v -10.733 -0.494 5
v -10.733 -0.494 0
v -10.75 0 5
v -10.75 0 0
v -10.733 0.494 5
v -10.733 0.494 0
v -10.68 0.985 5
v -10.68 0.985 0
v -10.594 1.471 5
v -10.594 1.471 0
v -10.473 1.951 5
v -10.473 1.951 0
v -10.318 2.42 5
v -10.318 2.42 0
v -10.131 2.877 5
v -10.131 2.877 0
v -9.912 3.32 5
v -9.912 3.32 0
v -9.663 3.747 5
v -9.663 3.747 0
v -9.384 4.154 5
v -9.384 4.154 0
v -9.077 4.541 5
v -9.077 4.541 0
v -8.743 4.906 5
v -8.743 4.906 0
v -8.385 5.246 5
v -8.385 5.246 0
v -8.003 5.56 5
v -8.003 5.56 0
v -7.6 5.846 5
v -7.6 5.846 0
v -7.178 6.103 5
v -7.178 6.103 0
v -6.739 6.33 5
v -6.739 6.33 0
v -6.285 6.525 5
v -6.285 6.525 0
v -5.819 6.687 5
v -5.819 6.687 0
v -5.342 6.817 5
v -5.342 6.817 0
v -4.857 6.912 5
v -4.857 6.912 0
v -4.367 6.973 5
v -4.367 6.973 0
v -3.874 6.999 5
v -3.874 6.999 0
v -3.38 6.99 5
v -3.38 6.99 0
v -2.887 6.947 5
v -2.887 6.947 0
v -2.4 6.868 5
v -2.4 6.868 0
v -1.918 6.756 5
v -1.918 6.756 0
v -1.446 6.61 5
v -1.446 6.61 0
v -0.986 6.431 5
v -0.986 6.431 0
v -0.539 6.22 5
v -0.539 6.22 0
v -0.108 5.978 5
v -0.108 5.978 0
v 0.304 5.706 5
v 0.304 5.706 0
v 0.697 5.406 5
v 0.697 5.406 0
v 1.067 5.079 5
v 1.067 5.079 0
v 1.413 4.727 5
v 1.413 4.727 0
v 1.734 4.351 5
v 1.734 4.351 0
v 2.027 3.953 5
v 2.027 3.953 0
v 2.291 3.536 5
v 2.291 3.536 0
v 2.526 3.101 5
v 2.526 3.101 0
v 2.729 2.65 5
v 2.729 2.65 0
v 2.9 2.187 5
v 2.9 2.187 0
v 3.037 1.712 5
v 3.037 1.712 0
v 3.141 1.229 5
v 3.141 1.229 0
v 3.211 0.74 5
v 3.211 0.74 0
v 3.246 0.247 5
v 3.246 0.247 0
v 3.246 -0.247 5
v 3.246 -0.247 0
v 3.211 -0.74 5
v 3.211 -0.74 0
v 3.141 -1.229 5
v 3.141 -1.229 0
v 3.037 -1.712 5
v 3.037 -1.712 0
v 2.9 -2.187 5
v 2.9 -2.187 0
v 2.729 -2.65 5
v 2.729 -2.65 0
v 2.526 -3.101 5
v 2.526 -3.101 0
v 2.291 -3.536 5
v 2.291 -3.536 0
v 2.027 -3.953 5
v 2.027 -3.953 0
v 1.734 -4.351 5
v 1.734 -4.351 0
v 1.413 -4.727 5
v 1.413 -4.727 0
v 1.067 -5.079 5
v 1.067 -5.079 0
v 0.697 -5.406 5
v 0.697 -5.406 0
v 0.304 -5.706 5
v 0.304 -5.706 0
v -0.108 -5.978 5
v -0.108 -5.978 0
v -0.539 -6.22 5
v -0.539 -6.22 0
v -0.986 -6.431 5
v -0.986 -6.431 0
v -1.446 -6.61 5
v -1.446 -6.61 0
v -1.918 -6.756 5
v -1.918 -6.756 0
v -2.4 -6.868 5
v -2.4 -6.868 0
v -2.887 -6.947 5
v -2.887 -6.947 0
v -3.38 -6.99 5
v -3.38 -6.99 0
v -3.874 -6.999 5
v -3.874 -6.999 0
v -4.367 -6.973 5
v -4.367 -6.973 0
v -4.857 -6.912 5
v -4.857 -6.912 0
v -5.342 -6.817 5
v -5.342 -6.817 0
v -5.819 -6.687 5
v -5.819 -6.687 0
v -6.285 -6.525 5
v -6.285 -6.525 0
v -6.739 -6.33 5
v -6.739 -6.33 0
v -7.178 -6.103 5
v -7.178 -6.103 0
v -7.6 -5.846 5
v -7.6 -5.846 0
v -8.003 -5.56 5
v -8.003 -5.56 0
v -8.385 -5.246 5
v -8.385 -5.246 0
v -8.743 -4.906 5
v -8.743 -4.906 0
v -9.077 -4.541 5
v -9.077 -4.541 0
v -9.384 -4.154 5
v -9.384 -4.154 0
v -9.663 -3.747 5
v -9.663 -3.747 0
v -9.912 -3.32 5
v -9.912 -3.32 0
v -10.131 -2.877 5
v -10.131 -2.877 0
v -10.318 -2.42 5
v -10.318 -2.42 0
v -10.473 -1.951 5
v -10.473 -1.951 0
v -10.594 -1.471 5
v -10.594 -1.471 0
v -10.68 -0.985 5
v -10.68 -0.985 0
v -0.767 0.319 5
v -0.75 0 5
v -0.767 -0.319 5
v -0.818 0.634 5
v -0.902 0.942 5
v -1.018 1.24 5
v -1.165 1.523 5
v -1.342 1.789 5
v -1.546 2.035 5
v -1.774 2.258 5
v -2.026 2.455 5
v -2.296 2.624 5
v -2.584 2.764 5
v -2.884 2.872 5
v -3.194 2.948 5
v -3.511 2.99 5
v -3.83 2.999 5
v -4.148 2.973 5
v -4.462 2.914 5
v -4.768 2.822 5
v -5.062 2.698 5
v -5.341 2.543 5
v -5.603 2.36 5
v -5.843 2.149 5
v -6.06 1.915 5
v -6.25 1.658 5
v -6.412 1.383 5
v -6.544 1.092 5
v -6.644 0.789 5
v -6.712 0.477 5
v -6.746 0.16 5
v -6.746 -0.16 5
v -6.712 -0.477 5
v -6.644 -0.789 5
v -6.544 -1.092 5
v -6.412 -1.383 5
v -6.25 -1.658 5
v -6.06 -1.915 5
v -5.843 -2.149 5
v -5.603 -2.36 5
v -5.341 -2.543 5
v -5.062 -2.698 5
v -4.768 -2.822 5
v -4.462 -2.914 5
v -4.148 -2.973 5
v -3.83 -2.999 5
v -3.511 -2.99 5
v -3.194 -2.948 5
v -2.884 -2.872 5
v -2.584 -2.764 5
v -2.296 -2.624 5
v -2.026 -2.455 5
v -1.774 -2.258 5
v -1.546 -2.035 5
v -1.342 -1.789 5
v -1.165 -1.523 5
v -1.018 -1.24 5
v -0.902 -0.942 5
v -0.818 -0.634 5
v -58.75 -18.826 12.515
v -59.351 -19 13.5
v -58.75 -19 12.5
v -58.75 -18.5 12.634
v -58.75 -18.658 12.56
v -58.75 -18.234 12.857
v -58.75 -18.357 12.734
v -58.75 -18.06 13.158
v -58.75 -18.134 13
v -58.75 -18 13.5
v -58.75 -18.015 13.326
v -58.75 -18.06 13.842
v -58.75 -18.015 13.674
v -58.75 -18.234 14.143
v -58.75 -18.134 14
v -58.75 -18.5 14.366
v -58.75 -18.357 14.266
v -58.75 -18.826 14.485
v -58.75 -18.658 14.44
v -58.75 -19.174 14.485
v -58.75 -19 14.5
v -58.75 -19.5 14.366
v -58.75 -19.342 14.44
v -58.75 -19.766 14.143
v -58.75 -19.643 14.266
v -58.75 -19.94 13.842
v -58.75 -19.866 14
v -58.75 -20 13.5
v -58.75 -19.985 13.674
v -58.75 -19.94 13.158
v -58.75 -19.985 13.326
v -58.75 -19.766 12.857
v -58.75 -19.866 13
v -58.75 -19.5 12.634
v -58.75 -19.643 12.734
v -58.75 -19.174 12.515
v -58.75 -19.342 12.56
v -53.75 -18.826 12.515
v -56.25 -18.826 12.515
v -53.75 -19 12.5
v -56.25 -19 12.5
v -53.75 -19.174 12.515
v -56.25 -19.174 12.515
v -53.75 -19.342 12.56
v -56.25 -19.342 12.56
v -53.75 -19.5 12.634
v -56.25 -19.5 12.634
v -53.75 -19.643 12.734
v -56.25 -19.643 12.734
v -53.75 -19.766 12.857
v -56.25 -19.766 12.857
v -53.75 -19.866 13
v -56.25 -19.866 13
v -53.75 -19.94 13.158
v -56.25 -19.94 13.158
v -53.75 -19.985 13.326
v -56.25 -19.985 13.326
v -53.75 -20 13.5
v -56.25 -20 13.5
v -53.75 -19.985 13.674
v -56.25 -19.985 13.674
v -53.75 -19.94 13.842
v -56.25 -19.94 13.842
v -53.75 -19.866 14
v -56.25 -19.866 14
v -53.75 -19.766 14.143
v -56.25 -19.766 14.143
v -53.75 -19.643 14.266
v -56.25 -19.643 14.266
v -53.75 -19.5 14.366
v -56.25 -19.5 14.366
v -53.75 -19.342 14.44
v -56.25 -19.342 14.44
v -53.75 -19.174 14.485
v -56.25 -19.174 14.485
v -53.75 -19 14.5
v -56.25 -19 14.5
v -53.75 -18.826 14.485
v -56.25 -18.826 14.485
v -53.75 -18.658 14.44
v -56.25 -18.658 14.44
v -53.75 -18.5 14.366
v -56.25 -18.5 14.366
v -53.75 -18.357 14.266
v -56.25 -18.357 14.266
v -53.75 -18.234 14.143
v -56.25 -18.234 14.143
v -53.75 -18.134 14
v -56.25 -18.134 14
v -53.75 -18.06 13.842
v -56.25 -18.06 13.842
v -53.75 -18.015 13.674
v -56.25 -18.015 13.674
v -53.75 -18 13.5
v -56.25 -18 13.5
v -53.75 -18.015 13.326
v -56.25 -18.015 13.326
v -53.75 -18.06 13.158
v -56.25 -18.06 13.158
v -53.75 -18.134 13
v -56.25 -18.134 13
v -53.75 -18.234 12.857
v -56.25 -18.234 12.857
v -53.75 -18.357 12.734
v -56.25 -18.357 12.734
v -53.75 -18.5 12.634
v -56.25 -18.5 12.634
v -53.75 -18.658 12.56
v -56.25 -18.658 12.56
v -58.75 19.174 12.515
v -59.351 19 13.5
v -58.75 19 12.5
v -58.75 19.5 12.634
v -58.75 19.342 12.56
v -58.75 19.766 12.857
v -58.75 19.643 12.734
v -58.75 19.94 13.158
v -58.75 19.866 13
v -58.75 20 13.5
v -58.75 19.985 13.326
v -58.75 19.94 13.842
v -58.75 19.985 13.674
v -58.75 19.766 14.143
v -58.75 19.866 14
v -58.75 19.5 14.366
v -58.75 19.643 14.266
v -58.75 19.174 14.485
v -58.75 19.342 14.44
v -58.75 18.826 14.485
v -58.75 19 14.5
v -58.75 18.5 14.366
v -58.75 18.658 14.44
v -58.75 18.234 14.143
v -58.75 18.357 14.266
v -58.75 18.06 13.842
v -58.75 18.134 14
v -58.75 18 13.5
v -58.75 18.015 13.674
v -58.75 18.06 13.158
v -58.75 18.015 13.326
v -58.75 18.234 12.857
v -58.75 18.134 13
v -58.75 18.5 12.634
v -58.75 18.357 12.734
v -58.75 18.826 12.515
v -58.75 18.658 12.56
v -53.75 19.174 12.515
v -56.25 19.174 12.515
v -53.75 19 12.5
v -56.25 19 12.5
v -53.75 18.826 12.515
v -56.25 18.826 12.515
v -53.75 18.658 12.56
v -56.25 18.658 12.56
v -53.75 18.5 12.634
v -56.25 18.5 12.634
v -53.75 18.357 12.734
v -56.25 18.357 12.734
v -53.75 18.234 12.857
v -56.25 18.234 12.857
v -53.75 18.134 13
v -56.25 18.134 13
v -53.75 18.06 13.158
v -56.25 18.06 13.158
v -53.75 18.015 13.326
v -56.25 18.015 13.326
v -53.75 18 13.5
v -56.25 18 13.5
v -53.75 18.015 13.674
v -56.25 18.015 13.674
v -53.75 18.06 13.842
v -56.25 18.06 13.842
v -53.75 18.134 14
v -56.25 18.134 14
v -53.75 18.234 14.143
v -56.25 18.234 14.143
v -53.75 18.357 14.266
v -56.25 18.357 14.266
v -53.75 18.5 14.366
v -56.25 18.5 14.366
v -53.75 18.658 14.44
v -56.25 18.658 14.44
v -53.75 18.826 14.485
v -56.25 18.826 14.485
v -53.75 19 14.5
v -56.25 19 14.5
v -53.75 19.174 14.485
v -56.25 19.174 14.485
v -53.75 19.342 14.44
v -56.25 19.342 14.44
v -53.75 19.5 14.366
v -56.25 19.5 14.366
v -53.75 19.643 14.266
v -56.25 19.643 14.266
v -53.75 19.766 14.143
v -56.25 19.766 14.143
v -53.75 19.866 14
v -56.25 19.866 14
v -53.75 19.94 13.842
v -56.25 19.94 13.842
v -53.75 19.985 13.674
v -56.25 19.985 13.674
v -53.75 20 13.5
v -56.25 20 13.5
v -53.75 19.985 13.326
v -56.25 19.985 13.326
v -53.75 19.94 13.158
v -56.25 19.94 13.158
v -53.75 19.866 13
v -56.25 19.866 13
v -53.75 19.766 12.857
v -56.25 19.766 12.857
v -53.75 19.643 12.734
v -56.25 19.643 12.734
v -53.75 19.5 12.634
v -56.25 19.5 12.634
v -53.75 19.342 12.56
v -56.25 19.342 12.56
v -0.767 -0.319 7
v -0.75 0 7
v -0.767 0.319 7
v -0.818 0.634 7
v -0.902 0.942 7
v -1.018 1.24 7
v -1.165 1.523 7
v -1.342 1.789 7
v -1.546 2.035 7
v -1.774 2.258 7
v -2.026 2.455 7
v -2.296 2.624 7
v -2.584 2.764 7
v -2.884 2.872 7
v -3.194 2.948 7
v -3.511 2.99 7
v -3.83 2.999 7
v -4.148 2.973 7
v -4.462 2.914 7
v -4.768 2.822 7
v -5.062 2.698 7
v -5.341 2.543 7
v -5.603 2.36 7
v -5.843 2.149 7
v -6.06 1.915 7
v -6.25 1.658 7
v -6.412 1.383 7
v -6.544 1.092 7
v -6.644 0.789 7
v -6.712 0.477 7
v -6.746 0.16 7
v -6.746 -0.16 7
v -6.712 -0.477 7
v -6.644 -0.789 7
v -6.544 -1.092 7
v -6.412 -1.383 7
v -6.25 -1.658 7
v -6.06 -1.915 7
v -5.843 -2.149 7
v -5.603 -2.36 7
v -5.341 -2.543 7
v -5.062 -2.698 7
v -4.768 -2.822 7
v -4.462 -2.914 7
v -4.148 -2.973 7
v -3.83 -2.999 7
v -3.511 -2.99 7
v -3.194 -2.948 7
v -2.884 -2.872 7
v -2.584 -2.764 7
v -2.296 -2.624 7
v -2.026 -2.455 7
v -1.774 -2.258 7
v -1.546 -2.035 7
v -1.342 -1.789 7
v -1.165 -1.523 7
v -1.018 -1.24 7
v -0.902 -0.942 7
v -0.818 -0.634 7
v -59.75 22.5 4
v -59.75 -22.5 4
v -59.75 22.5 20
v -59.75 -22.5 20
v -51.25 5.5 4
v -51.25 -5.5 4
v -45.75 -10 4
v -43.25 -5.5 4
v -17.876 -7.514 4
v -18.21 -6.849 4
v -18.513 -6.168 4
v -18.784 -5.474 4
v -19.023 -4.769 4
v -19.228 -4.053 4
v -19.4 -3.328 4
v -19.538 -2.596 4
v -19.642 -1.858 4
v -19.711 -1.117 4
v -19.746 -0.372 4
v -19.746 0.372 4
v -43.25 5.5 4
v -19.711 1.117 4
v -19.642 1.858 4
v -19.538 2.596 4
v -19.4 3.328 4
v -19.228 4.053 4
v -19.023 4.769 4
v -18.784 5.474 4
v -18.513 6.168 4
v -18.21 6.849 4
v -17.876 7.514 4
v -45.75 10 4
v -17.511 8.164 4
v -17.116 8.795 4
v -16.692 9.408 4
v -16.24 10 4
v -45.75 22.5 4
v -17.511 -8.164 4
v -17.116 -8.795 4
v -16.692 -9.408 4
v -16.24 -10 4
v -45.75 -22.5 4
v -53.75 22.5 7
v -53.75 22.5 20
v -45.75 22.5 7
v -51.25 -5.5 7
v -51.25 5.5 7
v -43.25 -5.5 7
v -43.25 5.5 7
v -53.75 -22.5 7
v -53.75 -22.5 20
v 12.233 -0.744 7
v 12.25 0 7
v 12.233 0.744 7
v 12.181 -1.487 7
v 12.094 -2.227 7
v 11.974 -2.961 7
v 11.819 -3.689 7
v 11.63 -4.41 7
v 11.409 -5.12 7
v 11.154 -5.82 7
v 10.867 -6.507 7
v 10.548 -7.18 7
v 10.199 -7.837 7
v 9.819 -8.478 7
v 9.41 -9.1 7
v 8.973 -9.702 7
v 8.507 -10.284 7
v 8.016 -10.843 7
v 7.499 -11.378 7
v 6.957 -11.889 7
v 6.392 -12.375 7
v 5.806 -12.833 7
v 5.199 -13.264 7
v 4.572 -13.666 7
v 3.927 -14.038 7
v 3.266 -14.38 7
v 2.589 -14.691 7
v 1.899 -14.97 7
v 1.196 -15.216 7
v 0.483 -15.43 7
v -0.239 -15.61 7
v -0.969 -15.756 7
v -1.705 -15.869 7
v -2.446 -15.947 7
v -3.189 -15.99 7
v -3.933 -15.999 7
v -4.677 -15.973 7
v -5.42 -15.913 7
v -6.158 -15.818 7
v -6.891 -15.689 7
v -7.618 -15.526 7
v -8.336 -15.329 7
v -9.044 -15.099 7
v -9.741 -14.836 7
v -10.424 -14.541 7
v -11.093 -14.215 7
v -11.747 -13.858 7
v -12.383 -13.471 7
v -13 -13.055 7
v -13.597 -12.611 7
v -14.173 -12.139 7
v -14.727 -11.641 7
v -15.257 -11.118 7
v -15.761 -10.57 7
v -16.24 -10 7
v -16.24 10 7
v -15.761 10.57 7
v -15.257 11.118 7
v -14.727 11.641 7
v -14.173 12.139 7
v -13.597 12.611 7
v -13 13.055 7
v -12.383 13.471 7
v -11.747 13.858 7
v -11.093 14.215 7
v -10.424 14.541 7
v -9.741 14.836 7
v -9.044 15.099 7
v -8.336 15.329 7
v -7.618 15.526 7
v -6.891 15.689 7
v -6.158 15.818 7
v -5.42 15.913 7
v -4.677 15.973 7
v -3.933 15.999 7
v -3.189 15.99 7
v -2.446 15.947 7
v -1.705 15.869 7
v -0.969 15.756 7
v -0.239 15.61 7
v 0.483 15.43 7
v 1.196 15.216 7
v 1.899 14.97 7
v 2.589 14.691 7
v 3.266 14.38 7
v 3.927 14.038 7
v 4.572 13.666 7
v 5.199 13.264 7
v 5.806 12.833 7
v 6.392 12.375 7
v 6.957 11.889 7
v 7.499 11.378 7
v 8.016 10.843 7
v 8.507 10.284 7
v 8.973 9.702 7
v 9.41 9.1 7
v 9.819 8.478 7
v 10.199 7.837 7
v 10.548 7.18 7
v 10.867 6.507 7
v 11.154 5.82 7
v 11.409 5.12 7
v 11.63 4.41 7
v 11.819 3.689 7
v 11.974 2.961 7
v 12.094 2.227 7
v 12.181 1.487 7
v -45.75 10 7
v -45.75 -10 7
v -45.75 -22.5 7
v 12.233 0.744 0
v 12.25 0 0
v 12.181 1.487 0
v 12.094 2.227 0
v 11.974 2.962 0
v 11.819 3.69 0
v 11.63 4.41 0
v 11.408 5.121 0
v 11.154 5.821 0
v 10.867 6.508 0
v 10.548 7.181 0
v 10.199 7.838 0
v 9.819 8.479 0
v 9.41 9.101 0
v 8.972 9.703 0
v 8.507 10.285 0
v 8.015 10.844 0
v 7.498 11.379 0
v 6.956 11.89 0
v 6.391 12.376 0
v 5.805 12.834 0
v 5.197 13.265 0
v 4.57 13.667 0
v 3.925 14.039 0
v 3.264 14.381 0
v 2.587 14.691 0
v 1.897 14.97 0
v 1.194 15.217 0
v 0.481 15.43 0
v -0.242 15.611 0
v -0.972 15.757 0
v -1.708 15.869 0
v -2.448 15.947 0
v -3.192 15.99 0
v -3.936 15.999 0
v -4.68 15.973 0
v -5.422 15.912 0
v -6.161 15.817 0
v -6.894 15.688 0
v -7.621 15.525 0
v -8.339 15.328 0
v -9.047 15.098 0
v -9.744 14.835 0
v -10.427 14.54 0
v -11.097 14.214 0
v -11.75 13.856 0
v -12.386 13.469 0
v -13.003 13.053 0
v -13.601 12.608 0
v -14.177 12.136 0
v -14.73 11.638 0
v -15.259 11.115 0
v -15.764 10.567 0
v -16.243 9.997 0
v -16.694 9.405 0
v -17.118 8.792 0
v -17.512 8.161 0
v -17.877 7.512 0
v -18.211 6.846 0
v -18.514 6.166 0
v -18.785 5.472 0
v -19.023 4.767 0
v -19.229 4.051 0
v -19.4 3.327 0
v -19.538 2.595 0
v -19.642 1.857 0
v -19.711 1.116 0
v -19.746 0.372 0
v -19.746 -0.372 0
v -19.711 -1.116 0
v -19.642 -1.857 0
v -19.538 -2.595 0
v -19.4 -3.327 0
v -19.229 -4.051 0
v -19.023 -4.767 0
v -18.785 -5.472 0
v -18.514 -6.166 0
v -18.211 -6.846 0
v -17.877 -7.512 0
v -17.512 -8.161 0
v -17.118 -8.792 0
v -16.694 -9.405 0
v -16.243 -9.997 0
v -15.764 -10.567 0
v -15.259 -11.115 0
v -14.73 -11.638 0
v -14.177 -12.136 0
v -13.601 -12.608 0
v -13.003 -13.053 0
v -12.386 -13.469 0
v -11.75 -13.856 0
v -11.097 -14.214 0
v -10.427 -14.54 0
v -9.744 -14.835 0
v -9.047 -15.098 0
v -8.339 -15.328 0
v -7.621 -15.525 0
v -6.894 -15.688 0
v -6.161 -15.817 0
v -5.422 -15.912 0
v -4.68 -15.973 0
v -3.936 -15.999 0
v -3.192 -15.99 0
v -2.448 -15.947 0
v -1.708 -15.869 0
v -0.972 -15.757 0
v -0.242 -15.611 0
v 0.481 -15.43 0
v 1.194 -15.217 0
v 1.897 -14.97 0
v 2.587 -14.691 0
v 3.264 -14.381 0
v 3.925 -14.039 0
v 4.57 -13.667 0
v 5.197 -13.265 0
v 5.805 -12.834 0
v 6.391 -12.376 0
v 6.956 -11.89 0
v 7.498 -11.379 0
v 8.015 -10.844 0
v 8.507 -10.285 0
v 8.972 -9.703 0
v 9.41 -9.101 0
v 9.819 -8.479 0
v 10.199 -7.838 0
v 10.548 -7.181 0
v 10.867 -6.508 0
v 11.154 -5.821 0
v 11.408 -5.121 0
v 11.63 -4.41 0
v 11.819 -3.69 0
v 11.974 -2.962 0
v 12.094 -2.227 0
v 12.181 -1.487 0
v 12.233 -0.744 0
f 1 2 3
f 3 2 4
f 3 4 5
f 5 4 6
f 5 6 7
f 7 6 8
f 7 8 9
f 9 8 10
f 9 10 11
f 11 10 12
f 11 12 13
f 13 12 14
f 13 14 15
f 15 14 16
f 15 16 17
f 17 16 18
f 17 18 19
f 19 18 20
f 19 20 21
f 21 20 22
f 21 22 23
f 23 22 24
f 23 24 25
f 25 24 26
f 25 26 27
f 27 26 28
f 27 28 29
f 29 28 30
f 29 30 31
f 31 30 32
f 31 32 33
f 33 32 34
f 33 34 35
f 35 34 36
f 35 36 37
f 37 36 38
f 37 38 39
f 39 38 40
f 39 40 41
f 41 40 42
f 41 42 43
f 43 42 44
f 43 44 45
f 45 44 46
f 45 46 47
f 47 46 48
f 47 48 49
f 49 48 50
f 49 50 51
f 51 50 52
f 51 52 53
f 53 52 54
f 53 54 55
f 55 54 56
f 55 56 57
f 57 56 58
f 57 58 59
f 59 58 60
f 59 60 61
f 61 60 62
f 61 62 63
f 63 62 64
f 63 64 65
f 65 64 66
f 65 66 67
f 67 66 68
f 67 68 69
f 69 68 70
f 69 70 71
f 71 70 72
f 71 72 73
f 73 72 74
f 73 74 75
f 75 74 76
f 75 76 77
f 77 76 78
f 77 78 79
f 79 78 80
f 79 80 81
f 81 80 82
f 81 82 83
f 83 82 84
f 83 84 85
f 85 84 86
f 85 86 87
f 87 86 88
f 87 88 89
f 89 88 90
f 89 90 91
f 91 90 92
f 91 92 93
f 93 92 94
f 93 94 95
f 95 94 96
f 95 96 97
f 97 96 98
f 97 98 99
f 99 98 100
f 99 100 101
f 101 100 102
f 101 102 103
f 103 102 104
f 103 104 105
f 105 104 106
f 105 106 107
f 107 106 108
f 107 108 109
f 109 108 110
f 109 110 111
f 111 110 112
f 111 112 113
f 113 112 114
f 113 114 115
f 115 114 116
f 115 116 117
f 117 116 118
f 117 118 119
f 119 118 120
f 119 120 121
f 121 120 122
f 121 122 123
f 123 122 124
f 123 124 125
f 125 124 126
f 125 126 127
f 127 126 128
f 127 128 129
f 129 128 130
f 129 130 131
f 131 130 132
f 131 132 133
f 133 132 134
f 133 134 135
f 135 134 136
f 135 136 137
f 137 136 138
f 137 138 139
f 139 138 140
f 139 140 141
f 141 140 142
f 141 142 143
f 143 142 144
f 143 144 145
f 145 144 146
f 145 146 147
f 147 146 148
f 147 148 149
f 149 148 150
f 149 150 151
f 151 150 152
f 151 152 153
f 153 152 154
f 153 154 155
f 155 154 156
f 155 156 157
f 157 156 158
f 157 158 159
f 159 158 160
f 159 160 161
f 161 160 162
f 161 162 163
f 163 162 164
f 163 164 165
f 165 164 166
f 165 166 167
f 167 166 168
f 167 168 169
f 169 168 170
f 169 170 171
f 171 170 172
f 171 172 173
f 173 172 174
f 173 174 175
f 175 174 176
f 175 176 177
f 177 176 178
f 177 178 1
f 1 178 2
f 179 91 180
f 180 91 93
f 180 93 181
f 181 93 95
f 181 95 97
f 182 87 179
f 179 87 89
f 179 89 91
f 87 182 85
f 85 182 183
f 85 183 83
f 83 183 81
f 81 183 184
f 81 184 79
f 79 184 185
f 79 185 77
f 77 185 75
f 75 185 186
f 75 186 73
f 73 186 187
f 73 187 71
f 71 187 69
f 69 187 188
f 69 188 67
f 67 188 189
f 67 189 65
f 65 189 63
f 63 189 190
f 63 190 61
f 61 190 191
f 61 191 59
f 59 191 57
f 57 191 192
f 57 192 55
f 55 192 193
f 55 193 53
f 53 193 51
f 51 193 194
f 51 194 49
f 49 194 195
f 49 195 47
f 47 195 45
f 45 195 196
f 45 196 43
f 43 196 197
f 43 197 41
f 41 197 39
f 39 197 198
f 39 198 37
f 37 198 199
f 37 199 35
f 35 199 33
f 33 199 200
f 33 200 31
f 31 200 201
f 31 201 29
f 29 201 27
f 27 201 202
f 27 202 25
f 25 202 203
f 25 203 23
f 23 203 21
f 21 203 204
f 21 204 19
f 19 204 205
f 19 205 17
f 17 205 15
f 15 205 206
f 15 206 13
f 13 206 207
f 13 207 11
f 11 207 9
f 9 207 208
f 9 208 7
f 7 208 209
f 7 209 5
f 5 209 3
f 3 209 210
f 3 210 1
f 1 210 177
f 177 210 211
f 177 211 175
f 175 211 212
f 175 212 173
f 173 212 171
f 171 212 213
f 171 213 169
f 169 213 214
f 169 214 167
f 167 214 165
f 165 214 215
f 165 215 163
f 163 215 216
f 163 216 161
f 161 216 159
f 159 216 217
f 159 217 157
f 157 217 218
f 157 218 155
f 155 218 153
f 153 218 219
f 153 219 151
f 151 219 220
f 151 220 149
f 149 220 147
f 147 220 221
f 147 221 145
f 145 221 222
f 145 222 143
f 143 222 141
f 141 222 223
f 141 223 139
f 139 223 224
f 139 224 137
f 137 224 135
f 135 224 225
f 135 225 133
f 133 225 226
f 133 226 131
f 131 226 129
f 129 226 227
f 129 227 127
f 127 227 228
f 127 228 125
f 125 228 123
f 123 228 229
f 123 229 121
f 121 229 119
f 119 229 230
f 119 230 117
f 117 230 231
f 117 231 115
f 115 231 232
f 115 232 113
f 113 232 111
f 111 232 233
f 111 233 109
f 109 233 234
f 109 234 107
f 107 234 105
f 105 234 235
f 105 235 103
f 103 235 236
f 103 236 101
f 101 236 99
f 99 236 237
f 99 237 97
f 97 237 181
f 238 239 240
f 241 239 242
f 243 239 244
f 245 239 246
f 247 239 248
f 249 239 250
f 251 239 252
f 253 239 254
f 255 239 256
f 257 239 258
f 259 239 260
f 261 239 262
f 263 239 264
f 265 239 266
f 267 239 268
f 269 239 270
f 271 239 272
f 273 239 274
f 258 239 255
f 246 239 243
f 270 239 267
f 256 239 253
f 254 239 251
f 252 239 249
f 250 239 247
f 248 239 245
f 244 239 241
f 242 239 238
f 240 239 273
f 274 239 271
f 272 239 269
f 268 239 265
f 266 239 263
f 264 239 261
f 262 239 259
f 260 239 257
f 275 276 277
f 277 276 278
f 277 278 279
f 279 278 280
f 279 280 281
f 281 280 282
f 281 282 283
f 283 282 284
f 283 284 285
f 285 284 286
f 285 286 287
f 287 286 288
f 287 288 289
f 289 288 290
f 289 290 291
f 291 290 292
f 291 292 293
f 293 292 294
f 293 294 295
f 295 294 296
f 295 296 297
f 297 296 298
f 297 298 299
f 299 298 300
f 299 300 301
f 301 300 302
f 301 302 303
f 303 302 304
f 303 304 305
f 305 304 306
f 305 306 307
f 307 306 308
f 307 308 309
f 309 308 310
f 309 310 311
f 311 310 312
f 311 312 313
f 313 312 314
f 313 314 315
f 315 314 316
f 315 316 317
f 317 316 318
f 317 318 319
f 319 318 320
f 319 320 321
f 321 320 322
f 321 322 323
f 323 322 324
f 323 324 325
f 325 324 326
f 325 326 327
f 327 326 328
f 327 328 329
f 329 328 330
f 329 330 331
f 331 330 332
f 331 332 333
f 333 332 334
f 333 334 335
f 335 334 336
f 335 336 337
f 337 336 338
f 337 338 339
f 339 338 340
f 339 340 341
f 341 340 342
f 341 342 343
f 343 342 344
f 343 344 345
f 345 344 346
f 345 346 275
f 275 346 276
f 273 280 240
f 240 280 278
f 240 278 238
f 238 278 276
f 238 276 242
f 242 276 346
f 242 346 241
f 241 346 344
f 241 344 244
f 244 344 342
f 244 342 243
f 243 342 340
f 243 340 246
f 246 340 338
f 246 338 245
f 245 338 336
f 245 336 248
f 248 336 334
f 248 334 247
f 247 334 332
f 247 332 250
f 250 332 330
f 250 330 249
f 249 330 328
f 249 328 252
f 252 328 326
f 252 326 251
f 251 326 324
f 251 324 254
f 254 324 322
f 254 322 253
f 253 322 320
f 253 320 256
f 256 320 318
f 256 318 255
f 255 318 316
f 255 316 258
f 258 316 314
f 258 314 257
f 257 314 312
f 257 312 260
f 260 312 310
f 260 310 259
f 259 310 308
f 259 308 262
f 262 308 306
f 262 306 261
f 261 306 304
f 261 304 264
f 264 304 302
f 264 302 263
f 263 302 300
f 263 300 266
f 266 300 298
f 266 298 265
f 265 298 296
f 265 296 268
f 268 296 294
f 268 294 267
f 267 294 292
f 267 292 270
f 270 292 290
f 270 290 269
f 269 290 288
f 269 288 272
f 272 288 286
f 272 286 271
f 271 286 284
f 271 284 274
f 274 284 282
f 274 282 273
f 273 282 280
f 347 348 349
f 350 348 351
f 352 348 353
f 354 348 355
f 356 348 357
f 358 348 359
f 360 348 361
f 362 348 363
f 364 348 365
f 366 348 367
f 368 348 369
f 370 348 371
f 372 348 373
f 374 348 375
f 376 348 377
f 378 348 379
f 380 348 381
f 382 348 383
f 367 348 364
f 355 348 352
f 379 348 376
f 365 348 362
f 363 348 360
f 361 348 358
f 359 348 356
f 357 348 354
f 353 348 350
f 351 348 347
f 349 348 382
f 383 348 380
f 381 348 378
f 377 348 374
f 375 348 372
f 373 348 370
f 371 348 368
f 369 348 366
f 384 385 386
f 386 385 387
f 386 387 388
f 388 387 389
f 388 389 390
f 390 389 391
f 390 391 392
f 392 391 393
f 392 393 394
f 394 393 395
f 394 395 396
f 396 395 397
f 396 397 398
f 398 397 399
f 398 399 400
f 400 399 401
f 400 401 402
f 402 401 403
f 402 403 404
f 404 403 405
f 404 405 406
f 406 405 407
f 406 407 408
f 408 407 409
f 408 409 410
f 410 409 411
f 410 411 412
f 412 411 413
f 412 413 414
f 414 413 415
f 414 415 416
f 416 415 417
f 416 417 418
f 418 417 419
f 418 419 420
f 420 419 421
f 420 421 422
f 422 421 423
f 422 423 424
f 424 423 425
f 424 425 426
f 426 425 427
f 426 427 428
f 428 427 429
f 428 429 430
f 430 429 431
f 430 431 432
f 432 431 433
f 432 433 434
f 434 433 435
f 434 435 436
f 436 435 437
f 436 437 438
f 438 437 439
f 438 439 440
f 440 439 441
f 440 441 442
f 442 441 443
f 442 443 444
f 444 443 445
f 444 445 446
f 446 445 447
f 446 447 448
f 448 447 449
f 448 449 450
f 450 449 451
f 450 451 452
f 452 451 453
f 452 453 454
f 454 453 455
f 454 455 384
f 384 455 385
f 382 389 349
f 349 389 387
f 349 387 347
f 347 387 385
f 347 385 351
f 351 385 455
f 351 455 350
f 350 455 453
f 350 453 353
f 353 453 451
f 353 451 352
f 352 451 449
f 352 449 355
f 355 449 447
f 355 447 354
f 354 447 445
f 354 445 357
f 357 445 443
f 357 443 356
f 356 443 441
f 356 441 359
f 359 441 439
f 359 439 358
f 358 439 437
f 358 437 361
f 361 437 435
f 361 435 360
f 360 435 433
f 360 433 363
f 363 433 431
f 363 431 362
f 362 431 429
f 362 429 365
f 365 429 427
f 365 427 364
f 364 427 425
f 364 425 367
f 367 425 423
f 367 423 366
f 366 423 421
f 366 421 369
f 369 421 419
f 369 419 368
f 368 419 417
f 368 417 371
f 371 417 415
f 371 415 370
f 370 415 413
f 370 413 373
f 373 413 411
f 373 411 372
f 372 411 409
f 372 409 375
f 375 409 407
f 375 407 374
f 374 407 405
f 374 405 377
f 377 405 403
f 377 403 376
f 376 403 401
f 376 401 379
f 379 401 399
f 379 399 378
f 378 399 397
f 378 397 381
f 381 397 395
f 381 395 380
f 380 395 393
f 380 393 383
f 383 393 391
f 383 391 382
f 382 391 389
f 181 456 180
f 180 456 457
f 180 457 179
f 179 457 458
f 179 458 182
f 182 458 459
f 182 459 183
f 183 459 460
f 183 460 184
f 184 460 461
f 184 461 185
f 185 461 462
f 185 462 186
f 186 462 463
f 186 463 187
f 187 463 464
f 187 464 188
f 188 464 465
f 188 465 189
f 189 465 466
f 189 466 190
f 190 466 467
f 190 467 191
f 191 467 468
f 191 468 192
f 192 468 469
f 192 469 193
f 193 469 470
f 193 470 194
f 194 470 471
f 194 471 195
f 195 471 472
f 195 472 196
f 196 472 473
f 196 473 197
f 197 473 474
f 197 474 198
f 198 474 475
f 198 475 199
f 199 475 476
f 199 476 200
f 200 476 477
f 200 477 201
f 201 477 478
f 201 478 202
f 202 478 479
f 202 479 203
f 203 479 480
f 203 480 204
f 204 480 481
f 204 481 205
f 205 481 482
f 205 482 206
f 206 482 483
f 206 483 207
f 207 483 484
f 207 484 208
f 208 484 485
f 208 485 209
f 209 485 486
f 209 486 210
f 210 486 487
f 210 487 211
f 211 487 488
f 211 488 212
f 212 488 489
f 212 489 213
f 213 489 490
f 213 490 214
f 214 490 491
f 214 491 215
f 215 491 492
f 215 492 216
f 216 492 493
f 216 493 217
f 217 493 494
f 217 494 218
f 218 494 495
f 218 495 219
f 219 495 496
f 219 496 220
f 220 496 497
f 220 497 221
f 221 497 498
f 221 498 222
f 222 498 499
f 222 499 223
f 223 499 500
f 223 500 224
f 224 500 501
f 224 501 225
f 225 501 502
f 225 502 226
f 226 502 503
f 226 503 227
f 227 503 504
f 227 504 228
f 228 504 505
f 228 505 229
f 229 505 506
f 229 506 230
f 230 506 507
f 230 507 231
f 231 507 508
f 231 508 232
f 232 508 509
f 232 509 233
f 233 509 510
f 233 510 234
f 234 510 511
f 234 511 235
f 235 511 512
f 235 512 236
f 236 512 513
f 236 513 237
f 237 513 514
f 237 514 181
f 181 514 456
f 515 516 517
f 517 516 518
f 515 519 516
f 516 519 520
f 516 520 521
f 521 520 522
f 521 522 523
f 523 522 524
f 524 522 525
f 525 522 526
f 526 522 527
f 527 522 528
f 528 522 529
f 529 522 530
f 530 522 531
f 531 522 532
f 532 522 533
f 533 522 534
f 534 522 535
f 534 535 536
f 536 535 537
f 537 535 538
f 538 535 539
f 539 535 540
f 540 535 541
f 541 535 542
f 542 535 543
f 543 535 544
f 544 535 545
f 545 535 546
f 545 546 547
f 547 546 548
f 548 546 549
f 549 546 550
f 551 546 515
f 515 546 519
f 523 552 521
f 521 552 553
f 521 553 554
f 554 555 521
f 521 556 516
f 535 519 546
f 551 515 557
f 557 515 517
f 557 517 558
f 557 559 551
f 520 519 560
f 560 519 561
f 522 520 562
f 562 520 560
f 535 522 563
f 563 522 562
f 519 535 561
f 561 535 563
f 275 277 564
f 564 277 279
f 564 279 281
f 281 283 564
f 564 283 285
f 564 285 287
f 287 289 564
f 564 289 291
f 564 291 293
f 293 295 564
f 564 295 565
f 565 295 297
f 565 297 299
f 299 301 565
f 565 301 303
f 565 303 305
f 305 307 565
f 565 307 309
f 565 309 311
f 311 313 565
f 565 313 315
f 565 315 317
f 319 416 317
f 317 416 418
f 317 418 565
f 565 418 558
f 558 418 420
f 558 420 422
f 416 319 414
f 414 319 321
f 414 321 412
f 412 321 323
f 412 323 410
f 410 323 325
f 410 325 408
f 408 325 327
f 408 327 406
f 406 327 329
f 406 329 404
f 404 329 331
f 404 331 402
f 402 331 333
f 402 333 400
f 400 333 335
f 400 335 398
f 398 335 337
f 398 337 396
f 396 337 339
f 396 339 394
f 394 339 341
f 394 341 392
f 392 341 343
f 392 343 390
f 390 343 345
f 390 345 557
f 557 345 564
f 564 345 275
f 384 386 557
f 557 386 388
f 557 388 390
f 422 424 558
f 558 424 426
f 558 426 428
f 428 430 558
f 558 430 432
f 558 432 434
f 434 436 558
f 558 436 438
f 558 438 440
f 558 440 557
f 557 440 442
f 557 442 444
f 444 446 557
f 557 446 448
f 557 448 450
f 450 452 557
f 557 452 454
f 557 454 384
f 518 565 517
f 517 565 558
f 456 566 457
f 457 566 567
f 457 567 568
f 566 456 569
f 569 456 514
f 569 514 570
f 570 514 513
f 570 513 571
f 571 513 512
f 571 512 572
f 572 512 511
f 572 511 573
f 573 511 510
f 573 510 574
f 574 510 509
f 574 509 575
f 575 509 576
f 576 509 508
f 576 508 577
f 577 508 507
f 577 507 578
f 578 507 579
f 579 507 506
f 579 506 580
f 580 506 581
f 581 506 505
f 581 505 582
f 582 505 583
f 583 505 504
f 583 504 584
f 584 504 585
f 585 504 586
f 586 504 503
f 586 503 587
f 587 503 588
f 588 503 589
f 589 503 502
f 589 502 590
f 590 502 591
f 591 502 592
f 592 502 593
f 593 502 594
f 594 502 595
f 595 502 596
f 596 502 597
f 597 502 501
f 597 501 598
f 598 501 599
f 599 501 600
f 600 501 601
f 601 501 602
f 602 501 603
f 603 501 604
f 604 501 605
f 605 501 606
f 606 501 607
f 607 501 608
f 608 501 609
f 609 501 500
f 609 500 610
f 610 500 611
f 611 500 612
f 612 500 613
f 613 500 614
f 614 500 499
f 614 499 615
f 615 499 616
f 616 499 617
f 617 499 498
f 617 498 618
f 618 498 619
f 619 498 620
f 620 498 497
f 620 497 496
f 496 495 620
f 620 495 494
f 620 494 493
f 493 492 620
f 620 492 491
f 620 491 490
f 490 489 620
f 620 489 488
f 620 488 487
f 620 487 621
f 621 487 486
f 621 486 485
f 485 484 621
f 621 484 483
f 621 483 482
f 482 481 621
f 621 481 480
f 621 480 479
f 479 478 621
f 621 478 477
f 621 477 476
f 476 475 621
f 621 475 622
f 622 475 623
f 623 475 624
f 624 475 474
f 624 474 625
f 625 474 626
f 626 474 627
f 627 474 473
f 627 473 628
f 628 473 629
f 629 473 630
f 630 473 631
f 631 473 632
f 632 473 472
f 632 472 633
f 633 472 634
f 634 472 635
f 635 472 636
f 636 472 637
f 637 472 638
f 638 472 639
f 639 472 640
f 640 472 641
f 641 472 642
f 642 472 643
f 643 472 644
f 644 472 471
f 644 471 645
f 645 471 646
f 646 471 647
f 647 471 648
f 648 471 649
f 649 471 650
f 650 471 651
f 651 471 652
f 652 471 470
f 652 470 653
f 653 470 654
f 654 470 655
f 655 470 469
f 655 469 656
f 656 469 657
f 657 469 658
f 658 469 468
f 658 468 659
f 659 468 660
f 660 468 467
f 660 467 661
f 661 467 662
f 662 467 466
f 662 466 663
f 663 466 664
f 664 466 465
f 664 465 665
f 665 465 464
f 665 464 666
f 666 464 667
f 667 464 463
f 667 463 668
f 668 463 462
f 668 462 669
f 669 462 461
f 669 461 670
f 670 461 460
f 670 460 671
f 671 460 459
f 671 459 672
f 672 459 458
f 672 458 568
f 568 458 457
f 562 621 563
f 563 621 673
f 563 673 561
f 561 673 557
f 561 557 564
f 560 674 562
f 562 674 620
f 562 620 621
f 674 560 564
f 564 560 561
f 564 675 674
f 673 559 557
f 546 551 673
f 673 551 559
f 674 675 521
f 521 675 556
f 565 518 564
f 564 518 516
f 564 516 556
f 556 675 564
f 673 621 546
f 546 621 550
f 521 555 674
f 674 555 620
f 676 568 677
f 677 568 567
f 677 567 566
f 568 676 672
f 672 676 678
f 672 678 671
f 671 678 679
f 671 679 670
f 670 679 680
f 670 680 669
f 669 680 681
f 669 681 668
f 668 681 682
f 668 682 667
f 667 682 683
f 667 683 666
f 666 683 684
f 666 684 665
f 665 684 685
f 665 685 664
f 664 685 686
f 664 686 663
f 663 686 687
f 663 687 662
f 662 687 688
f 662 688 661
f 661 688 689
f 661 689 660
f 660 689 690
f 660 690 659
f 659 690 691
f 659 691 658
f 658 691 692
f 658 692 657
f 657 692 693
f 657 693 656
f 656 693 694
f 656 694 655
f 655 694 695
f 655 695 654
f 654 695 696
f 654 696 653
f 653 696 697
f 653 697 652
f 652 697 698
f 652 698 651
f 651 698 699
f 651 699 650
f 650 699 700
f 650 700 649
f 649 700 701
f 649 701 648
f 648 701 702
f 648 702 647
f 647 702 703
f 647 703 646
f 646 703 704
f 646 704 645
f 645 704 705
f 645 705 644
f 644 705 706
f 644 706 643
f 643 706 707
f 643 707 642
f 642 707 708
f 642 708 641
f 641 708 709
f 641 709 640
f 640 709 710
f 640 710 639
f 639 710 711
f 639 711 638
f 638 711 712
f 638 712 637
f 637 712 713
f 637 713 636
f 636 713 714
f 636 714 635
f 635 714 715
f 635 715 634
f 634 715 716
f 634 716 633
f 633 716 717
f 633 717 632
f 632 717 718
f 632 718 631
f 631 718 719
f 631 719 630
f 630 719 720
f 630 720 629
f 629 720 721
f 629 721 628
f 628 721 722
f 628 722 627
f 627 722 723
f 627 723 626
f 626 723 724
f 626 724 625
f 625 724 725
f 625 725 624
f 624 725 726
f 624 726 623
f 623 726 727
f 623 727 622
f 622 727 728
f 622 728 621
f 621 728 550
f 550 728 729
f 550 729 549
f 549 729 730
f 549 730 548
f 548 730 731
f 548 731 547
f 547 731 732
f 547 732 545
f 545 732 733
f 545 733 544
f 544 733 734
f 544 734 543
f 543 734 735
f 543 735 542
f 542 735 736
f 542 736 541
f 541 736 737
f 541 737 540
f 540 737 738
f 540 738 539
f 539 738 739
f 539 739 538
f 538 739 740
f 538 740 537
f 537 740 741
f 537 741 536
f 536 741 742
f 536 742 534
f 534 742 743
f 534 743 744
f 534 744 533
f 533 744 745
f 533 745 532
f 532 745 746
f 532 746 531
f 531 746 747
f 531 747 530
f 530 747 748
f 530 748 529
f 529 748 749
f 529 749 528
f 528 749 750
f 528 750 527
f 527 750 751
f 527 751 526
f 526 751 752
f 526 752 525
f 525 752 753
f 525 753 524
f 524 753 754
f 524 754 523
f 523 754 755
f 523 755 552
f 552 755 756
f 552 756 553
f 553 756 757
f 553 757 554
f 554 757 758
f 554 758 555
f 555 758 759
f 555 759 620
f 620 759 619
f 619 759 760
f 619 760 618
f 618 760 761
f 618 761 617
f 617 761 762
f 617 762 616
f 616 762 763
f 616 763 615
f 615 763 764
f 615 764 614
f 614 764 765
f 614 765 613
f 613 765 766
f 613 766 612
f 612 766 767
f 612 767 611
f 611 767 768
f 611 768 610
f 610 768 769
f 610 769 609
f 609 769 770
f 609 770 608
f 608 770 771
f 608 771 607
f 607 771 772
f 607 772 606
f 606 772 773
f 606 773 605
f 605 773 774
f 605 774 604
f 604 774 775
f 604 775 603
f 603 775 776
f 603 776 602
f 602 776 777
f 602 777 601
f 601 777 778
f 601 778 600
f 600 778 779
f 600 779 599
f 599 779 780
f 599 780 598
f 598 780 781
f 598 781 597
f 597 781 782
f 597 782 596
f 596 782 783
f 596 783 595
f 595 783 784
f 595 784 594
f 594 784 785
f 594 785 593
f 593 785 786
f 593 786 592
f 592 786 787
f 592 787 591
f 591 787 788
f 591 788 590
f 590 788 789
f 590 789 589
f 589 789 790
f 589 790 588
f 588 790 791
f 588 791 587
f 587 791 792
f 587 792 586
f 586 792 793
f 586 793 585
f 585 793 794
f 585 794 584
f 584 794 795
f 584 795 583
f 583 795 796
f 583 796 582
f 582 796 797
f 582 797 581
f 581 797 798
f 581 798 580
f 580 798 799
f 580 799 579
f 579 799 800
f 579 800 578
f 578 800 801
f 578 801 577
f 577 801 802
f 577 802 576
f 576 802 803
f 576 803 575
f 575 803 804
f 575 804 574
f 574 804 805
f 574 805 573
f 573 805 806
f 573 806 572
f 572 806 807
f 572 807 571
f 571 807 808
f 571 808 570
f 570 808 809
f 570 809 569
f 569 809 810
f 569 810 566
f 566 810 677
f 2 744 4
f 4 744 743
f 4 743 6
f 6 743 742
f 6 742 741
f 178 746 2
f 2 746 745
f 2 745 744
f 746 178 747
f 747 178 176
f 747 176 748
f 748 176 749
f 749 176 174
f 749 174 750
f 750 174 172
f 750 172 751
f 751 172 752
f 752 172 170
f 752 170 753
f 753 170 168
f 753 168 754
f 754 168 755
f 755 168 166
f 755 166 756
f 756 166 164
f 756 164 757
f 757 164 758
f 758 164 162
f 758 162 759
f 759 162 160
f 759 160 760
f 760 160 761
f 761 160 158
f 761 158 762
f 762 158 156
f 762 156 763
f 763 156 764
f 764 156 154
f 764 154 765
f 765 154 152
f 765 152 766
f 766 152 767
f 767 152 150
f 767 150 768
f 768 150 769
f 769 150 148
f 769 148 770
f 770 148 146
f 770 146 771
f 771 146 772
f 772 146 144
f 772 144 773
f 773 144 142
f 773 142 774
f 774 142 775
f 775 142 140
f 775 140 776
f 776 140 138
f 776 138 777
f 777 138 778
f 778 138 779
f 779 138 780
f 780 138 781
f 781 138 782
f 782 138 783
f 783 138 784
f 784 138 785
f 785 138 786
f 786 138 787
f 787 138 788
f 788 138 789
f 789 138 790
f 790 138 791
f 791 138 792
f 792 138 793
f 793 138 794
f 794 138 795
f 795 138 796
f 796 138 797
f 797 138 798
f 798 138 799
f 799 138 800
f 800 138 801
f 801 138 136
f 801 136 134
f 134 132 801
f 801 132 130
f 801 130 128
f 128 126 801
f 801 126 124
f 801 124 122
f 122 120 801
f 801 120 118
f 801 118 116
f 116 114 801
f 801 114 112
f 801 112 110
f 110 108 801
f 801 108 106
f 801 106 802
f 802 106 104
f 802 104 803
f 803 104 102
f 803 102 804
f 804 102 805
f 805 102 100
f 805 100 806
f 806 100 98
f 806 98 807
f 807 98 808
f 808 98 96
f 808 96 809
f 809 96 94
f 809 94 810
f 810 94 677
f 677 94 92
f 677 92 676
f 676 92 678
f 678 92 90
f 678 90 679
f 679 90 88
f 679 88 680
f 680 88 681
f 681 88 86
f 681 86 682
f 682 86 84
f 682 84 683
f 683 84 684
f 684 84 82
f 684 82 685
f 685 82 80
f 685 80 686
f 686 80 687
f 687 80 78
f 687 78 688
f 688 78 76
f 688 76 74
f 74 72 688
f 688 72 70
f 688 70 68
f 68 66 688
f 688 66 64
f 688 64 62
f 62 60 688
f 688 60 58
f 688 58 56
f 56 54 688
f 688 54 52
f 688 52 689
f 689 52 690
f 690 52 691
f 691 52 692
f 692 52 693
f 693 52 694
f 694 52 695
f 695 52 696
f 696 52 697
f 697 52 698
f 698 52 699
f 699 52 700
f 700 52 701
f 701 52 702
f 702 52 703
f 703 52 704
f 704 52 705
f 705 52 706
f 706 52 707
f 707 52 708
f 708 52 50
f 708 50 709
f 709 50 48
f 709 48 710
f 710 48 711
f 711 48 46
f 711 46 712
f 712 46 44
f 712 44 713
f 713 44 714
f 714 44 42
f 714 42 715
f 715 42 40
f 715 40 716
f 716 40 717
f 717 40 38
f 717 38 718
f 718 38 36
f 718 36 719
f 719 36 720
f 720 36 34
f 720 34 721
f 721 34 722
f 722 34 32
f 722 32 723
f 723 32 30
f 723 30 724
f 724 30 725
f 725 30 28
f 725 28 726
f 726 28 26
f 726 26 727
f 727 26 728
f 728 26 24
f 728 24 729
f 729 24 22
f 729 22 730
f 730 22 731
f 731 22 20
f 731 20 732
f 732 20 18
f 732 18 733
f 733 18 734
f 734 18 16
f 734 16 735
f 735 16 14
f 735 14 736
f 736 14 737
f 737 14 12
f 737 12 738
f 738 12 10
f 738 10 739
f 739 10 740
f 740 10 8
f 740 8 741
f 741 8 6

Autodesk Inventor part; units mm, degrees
ref_plane "YZ Plane" through (0, 0, 0) normal (1, 0, 0) x (0, 1, 0)
ref_plane "XZ Plane" through (0, 0, 0) normal (0, 1, 0) x (-1, 0, 0)
ref_plane "XY Plane" through (0, 0, 0) normal (0, 0, 1) x (1, 0, 0)
sketch "Sketch1" plane through (0, 0, 0) normal (0, 0, 1) x (1, 0, 0)
  line L0 (-15.25, 6.5) -> (-15.25, -6.5) construction
  line L1 (18.75, 6.5) -> (-15.25, 6.5) construction
  line L2 (18.75, -6.5) -> (18.75, 6.5) construction
  line L3 (-15.25, -6.5) -> (18.75, -6.5) construction
  line L4 (9.8054, 8.5) -> (19.75, 8.5) construction
  arc A0 (9.8054, 8.5) -> (9.8054, -8.5) centre (-3.75, 0) ccw construction
  line L5 (19.75, -8.5) -> (9.8054, -8.5) construction
  line L6 (19.75, 8.5) -> (19.75, -8.5) construction
  circle A1 centre (-3.75, 0) radius 16
  point P0 (0, 0)
extrude "Extrusion1" add sketch "Sketch1" along normal blind 7
sketch "Sketch4" plane through (-3.75, 0, 7) normal (0, 0, 1) x (1, 0, 0)
  line L0 (0, 0) -> (-50, 0) construction
  line L1 (0, 10) -> (-50, 10)
  line L2 (-50, -10) -> (0, -10)
  arc A0 (0, -10) -> (0, 10) centre (0, 0) ccw
  arc A1 (-50, 10) -> (-50, -10) centre (-50, 0) ccw
  point P0 (3.75, 0)
  point P1 (-25, 0)
  dimension "d6" = 50
  dimension "d7" = 10
extrude "Extrusion3" add sketch "Sketch4" against normal blind 3
sketch "Sketch5" plane through (0, 0, 7) normal (0, 0, 1) x (1, 0, 0)
  arc A0 (-53.75, 10) -> (-53.75, -10) centre (-53.75, 0) ccw construction
  line L0 (-53.75, -10) -> (-16.24, -10) construction
  line L1 (-16.24, 10) -> (-53.75, 10) construction
  line L2 (-45.75, -22.5) -> (-61.75, -22.5)
  line L3 (-61.75, -22.5) -> (-61.75, 22.5)
  line L4 (-61.75, 22.5) -> (-45.75, 22.5)
  line L5 (-45.75, 22.5) -> (-45.75, -22.5)
  line L6 (-61.75, -22.5) -> (-45.75, 22.5) construction
  line L7 (-45.75, -22.5) -> (-61.75, 22.5) construction
  line L8 (-77.75, -22.5) -> (-61.75, -22.5)
  line L9 (-61.75, -22.5) -> (-61.75, 22.5)
  line L10 (-61.75, 22.5) -> (-77.75, 22.5)
  line L11 (-77.75, 22.5) -> (-77.75, -22.5)
  point P0 (0, 0)
  dimension "d10" = 45
  dimension "d11" = 16
  dimension "d12" = 16
extrude "Extrusion4" cut sketch "Sketch5" against normal blind 3 contours L8 L11 L10 L3
extrude "Extrusion5" add sketch "Sketch5" against normal blind 3 contours L2 L3 L4 L5
sketch "Sketch6" plane through (0, 0, 7) normal (0, 0, 1) x (1, 0, 0)
  line L0 (-53.75, -22.5) -> (-61.75, -22.5)
  line L1 (-61.75, -22.5) -> (-61.75, 22.5)
  line L2 (-61.75, 22.5) -> (-53.75, 22.5)
  line L3 (-53.75, 22.5) -> (-53.75, -22.5)
  line L4 (-61.75, -22.5) -> (-61.75, 22.5) construction
  line L5 (-45.75, -22.5) -> (-61.75, -22.5) projected
  line L6 (-61.75, 22.5) -> (-45.75, 22.5) projected
  point P0 (0, 0)
  dimension "d17" = 8
extrude "Extrusion6" add sketch "Sketch6" along normal blind 13
sketch "Sketch7" plane through (0, 0, 7) normal (0, 0, 1) x (1, 0, 0)
  line L0 (-43.25, -5.5) -> (-51.25, -5.5)
  line L1 (-51.25, -5.5) -> (-51.25, 5.5)
  line L2 (-51.25, 5.5) -> (-43.25, 5.5)
  line L3 (-43.25, 5.5) -> (-43.25, -5.5)
  line L4 (-53.75, -22.5) -> (-53.75, 22.5) projected
  line L5 (-53.75, -22.5) -> (-51.25, -5.5) construction
  line L6 (-51.25, 5.5) -> (-53.75, 22.5) construction
  point P0 (0, 0)
  dimension "d20" = 2.5
  dimension "d21" = 8
  dimension "d22" = 11
extrude "Extrusion7" cut sketch "Sketch7" against normal through all
sketch "Sketch8" plane through (0, 0, 20) normal (0, 0, 1) x (1, 0, 0)
  line L0 (-59.75, -22.5) -> (-61.75, -22.5)
  line L1 (-61.75, -22.5) -> (-61.75, 22.5)
  line L2 (-61.75, 22.5) -> (-59.75, 22.5)
  line L3 (-59.75, 22.5) -> (-59.75, -22.5)
  line L4 (-61.75, 22.5) -> (-61.75, -22.5) projected
  line L5 (-61.75, -22.5) -> (-53.75, -22.5) projected
  line L6 (-53.75, 22.5) -> (-61.75, 22.5) projected
  point P0 (0, 0)
  dimension "d25" = 2
extrude "Extrusion8" cut sketch "Sketch8" against normal through all
ref_plane "Work Plane1" through (-3.75, 0, 3.5) normal (0, 0, -1) x (-1, 0, 0)
sketch "Sketch12" plane through (0, 0, 7) normal (0, 0, 1) x (1, 0, 0)
  arc A0 (-16.24, -10) -> (-16.24, 10) centre (-3.75, 0) ccw projected
  circle A1 centre (-3.75, 0) radius 3
  point P0 (0, 0)
  dimension "d46" = 6
extrude "Extrusion11" cut sketch "Sketch12" against normal through all
sketch "Sketch13" plane through (-53.75, -22.5, 7) normal (1, 0, 0) x (0, 0, -1)
  line L0 (0, 45) -> (-13, 45) projected
  line L1 (0, 0) -> (-13, 0) projected
  line L2 (-13, 0) -> (-13, 45) construction
  line L3 (0, 12.5) -> (0, 0) construction
  line L4 (0, 45) -> (0, 32.5) construction
  line L5 (-6.5, 3.5) -> (-13, 3.5) construction
  line L6 (-6.5, 3.5) -> (0, 3.5) construction
  line L7 (-6.5, 41.5) -> (-13, 41.5) construction
  line L8 (-6.5, 41.5) -> (0, 41.5) construction
  point P0 (7, 22.5)
  dimension "d37" = 3.5
  dimension "d38" = 3.5
hole "Hole1" at (-53.75, -19, 13.5) at (-53.75, 19, 13.5) direction (-1, 0, 0) diameter 2 depth 5 tip angle 118
sketch "Sketch14" plane through (-3.75, 0, 0) normal (0, 0, -1) x (-1, 0, 0)
  circle A0 centre (0, 0) radius 7
  point P0 (-3.75, 0)
  dimension "d47" = 14
extrude "Extrusion12" cut sketch "Sketch14" against normal blind 5
equation "\"d38\" = d37"
properties part number "arm" material "Ogólne"
